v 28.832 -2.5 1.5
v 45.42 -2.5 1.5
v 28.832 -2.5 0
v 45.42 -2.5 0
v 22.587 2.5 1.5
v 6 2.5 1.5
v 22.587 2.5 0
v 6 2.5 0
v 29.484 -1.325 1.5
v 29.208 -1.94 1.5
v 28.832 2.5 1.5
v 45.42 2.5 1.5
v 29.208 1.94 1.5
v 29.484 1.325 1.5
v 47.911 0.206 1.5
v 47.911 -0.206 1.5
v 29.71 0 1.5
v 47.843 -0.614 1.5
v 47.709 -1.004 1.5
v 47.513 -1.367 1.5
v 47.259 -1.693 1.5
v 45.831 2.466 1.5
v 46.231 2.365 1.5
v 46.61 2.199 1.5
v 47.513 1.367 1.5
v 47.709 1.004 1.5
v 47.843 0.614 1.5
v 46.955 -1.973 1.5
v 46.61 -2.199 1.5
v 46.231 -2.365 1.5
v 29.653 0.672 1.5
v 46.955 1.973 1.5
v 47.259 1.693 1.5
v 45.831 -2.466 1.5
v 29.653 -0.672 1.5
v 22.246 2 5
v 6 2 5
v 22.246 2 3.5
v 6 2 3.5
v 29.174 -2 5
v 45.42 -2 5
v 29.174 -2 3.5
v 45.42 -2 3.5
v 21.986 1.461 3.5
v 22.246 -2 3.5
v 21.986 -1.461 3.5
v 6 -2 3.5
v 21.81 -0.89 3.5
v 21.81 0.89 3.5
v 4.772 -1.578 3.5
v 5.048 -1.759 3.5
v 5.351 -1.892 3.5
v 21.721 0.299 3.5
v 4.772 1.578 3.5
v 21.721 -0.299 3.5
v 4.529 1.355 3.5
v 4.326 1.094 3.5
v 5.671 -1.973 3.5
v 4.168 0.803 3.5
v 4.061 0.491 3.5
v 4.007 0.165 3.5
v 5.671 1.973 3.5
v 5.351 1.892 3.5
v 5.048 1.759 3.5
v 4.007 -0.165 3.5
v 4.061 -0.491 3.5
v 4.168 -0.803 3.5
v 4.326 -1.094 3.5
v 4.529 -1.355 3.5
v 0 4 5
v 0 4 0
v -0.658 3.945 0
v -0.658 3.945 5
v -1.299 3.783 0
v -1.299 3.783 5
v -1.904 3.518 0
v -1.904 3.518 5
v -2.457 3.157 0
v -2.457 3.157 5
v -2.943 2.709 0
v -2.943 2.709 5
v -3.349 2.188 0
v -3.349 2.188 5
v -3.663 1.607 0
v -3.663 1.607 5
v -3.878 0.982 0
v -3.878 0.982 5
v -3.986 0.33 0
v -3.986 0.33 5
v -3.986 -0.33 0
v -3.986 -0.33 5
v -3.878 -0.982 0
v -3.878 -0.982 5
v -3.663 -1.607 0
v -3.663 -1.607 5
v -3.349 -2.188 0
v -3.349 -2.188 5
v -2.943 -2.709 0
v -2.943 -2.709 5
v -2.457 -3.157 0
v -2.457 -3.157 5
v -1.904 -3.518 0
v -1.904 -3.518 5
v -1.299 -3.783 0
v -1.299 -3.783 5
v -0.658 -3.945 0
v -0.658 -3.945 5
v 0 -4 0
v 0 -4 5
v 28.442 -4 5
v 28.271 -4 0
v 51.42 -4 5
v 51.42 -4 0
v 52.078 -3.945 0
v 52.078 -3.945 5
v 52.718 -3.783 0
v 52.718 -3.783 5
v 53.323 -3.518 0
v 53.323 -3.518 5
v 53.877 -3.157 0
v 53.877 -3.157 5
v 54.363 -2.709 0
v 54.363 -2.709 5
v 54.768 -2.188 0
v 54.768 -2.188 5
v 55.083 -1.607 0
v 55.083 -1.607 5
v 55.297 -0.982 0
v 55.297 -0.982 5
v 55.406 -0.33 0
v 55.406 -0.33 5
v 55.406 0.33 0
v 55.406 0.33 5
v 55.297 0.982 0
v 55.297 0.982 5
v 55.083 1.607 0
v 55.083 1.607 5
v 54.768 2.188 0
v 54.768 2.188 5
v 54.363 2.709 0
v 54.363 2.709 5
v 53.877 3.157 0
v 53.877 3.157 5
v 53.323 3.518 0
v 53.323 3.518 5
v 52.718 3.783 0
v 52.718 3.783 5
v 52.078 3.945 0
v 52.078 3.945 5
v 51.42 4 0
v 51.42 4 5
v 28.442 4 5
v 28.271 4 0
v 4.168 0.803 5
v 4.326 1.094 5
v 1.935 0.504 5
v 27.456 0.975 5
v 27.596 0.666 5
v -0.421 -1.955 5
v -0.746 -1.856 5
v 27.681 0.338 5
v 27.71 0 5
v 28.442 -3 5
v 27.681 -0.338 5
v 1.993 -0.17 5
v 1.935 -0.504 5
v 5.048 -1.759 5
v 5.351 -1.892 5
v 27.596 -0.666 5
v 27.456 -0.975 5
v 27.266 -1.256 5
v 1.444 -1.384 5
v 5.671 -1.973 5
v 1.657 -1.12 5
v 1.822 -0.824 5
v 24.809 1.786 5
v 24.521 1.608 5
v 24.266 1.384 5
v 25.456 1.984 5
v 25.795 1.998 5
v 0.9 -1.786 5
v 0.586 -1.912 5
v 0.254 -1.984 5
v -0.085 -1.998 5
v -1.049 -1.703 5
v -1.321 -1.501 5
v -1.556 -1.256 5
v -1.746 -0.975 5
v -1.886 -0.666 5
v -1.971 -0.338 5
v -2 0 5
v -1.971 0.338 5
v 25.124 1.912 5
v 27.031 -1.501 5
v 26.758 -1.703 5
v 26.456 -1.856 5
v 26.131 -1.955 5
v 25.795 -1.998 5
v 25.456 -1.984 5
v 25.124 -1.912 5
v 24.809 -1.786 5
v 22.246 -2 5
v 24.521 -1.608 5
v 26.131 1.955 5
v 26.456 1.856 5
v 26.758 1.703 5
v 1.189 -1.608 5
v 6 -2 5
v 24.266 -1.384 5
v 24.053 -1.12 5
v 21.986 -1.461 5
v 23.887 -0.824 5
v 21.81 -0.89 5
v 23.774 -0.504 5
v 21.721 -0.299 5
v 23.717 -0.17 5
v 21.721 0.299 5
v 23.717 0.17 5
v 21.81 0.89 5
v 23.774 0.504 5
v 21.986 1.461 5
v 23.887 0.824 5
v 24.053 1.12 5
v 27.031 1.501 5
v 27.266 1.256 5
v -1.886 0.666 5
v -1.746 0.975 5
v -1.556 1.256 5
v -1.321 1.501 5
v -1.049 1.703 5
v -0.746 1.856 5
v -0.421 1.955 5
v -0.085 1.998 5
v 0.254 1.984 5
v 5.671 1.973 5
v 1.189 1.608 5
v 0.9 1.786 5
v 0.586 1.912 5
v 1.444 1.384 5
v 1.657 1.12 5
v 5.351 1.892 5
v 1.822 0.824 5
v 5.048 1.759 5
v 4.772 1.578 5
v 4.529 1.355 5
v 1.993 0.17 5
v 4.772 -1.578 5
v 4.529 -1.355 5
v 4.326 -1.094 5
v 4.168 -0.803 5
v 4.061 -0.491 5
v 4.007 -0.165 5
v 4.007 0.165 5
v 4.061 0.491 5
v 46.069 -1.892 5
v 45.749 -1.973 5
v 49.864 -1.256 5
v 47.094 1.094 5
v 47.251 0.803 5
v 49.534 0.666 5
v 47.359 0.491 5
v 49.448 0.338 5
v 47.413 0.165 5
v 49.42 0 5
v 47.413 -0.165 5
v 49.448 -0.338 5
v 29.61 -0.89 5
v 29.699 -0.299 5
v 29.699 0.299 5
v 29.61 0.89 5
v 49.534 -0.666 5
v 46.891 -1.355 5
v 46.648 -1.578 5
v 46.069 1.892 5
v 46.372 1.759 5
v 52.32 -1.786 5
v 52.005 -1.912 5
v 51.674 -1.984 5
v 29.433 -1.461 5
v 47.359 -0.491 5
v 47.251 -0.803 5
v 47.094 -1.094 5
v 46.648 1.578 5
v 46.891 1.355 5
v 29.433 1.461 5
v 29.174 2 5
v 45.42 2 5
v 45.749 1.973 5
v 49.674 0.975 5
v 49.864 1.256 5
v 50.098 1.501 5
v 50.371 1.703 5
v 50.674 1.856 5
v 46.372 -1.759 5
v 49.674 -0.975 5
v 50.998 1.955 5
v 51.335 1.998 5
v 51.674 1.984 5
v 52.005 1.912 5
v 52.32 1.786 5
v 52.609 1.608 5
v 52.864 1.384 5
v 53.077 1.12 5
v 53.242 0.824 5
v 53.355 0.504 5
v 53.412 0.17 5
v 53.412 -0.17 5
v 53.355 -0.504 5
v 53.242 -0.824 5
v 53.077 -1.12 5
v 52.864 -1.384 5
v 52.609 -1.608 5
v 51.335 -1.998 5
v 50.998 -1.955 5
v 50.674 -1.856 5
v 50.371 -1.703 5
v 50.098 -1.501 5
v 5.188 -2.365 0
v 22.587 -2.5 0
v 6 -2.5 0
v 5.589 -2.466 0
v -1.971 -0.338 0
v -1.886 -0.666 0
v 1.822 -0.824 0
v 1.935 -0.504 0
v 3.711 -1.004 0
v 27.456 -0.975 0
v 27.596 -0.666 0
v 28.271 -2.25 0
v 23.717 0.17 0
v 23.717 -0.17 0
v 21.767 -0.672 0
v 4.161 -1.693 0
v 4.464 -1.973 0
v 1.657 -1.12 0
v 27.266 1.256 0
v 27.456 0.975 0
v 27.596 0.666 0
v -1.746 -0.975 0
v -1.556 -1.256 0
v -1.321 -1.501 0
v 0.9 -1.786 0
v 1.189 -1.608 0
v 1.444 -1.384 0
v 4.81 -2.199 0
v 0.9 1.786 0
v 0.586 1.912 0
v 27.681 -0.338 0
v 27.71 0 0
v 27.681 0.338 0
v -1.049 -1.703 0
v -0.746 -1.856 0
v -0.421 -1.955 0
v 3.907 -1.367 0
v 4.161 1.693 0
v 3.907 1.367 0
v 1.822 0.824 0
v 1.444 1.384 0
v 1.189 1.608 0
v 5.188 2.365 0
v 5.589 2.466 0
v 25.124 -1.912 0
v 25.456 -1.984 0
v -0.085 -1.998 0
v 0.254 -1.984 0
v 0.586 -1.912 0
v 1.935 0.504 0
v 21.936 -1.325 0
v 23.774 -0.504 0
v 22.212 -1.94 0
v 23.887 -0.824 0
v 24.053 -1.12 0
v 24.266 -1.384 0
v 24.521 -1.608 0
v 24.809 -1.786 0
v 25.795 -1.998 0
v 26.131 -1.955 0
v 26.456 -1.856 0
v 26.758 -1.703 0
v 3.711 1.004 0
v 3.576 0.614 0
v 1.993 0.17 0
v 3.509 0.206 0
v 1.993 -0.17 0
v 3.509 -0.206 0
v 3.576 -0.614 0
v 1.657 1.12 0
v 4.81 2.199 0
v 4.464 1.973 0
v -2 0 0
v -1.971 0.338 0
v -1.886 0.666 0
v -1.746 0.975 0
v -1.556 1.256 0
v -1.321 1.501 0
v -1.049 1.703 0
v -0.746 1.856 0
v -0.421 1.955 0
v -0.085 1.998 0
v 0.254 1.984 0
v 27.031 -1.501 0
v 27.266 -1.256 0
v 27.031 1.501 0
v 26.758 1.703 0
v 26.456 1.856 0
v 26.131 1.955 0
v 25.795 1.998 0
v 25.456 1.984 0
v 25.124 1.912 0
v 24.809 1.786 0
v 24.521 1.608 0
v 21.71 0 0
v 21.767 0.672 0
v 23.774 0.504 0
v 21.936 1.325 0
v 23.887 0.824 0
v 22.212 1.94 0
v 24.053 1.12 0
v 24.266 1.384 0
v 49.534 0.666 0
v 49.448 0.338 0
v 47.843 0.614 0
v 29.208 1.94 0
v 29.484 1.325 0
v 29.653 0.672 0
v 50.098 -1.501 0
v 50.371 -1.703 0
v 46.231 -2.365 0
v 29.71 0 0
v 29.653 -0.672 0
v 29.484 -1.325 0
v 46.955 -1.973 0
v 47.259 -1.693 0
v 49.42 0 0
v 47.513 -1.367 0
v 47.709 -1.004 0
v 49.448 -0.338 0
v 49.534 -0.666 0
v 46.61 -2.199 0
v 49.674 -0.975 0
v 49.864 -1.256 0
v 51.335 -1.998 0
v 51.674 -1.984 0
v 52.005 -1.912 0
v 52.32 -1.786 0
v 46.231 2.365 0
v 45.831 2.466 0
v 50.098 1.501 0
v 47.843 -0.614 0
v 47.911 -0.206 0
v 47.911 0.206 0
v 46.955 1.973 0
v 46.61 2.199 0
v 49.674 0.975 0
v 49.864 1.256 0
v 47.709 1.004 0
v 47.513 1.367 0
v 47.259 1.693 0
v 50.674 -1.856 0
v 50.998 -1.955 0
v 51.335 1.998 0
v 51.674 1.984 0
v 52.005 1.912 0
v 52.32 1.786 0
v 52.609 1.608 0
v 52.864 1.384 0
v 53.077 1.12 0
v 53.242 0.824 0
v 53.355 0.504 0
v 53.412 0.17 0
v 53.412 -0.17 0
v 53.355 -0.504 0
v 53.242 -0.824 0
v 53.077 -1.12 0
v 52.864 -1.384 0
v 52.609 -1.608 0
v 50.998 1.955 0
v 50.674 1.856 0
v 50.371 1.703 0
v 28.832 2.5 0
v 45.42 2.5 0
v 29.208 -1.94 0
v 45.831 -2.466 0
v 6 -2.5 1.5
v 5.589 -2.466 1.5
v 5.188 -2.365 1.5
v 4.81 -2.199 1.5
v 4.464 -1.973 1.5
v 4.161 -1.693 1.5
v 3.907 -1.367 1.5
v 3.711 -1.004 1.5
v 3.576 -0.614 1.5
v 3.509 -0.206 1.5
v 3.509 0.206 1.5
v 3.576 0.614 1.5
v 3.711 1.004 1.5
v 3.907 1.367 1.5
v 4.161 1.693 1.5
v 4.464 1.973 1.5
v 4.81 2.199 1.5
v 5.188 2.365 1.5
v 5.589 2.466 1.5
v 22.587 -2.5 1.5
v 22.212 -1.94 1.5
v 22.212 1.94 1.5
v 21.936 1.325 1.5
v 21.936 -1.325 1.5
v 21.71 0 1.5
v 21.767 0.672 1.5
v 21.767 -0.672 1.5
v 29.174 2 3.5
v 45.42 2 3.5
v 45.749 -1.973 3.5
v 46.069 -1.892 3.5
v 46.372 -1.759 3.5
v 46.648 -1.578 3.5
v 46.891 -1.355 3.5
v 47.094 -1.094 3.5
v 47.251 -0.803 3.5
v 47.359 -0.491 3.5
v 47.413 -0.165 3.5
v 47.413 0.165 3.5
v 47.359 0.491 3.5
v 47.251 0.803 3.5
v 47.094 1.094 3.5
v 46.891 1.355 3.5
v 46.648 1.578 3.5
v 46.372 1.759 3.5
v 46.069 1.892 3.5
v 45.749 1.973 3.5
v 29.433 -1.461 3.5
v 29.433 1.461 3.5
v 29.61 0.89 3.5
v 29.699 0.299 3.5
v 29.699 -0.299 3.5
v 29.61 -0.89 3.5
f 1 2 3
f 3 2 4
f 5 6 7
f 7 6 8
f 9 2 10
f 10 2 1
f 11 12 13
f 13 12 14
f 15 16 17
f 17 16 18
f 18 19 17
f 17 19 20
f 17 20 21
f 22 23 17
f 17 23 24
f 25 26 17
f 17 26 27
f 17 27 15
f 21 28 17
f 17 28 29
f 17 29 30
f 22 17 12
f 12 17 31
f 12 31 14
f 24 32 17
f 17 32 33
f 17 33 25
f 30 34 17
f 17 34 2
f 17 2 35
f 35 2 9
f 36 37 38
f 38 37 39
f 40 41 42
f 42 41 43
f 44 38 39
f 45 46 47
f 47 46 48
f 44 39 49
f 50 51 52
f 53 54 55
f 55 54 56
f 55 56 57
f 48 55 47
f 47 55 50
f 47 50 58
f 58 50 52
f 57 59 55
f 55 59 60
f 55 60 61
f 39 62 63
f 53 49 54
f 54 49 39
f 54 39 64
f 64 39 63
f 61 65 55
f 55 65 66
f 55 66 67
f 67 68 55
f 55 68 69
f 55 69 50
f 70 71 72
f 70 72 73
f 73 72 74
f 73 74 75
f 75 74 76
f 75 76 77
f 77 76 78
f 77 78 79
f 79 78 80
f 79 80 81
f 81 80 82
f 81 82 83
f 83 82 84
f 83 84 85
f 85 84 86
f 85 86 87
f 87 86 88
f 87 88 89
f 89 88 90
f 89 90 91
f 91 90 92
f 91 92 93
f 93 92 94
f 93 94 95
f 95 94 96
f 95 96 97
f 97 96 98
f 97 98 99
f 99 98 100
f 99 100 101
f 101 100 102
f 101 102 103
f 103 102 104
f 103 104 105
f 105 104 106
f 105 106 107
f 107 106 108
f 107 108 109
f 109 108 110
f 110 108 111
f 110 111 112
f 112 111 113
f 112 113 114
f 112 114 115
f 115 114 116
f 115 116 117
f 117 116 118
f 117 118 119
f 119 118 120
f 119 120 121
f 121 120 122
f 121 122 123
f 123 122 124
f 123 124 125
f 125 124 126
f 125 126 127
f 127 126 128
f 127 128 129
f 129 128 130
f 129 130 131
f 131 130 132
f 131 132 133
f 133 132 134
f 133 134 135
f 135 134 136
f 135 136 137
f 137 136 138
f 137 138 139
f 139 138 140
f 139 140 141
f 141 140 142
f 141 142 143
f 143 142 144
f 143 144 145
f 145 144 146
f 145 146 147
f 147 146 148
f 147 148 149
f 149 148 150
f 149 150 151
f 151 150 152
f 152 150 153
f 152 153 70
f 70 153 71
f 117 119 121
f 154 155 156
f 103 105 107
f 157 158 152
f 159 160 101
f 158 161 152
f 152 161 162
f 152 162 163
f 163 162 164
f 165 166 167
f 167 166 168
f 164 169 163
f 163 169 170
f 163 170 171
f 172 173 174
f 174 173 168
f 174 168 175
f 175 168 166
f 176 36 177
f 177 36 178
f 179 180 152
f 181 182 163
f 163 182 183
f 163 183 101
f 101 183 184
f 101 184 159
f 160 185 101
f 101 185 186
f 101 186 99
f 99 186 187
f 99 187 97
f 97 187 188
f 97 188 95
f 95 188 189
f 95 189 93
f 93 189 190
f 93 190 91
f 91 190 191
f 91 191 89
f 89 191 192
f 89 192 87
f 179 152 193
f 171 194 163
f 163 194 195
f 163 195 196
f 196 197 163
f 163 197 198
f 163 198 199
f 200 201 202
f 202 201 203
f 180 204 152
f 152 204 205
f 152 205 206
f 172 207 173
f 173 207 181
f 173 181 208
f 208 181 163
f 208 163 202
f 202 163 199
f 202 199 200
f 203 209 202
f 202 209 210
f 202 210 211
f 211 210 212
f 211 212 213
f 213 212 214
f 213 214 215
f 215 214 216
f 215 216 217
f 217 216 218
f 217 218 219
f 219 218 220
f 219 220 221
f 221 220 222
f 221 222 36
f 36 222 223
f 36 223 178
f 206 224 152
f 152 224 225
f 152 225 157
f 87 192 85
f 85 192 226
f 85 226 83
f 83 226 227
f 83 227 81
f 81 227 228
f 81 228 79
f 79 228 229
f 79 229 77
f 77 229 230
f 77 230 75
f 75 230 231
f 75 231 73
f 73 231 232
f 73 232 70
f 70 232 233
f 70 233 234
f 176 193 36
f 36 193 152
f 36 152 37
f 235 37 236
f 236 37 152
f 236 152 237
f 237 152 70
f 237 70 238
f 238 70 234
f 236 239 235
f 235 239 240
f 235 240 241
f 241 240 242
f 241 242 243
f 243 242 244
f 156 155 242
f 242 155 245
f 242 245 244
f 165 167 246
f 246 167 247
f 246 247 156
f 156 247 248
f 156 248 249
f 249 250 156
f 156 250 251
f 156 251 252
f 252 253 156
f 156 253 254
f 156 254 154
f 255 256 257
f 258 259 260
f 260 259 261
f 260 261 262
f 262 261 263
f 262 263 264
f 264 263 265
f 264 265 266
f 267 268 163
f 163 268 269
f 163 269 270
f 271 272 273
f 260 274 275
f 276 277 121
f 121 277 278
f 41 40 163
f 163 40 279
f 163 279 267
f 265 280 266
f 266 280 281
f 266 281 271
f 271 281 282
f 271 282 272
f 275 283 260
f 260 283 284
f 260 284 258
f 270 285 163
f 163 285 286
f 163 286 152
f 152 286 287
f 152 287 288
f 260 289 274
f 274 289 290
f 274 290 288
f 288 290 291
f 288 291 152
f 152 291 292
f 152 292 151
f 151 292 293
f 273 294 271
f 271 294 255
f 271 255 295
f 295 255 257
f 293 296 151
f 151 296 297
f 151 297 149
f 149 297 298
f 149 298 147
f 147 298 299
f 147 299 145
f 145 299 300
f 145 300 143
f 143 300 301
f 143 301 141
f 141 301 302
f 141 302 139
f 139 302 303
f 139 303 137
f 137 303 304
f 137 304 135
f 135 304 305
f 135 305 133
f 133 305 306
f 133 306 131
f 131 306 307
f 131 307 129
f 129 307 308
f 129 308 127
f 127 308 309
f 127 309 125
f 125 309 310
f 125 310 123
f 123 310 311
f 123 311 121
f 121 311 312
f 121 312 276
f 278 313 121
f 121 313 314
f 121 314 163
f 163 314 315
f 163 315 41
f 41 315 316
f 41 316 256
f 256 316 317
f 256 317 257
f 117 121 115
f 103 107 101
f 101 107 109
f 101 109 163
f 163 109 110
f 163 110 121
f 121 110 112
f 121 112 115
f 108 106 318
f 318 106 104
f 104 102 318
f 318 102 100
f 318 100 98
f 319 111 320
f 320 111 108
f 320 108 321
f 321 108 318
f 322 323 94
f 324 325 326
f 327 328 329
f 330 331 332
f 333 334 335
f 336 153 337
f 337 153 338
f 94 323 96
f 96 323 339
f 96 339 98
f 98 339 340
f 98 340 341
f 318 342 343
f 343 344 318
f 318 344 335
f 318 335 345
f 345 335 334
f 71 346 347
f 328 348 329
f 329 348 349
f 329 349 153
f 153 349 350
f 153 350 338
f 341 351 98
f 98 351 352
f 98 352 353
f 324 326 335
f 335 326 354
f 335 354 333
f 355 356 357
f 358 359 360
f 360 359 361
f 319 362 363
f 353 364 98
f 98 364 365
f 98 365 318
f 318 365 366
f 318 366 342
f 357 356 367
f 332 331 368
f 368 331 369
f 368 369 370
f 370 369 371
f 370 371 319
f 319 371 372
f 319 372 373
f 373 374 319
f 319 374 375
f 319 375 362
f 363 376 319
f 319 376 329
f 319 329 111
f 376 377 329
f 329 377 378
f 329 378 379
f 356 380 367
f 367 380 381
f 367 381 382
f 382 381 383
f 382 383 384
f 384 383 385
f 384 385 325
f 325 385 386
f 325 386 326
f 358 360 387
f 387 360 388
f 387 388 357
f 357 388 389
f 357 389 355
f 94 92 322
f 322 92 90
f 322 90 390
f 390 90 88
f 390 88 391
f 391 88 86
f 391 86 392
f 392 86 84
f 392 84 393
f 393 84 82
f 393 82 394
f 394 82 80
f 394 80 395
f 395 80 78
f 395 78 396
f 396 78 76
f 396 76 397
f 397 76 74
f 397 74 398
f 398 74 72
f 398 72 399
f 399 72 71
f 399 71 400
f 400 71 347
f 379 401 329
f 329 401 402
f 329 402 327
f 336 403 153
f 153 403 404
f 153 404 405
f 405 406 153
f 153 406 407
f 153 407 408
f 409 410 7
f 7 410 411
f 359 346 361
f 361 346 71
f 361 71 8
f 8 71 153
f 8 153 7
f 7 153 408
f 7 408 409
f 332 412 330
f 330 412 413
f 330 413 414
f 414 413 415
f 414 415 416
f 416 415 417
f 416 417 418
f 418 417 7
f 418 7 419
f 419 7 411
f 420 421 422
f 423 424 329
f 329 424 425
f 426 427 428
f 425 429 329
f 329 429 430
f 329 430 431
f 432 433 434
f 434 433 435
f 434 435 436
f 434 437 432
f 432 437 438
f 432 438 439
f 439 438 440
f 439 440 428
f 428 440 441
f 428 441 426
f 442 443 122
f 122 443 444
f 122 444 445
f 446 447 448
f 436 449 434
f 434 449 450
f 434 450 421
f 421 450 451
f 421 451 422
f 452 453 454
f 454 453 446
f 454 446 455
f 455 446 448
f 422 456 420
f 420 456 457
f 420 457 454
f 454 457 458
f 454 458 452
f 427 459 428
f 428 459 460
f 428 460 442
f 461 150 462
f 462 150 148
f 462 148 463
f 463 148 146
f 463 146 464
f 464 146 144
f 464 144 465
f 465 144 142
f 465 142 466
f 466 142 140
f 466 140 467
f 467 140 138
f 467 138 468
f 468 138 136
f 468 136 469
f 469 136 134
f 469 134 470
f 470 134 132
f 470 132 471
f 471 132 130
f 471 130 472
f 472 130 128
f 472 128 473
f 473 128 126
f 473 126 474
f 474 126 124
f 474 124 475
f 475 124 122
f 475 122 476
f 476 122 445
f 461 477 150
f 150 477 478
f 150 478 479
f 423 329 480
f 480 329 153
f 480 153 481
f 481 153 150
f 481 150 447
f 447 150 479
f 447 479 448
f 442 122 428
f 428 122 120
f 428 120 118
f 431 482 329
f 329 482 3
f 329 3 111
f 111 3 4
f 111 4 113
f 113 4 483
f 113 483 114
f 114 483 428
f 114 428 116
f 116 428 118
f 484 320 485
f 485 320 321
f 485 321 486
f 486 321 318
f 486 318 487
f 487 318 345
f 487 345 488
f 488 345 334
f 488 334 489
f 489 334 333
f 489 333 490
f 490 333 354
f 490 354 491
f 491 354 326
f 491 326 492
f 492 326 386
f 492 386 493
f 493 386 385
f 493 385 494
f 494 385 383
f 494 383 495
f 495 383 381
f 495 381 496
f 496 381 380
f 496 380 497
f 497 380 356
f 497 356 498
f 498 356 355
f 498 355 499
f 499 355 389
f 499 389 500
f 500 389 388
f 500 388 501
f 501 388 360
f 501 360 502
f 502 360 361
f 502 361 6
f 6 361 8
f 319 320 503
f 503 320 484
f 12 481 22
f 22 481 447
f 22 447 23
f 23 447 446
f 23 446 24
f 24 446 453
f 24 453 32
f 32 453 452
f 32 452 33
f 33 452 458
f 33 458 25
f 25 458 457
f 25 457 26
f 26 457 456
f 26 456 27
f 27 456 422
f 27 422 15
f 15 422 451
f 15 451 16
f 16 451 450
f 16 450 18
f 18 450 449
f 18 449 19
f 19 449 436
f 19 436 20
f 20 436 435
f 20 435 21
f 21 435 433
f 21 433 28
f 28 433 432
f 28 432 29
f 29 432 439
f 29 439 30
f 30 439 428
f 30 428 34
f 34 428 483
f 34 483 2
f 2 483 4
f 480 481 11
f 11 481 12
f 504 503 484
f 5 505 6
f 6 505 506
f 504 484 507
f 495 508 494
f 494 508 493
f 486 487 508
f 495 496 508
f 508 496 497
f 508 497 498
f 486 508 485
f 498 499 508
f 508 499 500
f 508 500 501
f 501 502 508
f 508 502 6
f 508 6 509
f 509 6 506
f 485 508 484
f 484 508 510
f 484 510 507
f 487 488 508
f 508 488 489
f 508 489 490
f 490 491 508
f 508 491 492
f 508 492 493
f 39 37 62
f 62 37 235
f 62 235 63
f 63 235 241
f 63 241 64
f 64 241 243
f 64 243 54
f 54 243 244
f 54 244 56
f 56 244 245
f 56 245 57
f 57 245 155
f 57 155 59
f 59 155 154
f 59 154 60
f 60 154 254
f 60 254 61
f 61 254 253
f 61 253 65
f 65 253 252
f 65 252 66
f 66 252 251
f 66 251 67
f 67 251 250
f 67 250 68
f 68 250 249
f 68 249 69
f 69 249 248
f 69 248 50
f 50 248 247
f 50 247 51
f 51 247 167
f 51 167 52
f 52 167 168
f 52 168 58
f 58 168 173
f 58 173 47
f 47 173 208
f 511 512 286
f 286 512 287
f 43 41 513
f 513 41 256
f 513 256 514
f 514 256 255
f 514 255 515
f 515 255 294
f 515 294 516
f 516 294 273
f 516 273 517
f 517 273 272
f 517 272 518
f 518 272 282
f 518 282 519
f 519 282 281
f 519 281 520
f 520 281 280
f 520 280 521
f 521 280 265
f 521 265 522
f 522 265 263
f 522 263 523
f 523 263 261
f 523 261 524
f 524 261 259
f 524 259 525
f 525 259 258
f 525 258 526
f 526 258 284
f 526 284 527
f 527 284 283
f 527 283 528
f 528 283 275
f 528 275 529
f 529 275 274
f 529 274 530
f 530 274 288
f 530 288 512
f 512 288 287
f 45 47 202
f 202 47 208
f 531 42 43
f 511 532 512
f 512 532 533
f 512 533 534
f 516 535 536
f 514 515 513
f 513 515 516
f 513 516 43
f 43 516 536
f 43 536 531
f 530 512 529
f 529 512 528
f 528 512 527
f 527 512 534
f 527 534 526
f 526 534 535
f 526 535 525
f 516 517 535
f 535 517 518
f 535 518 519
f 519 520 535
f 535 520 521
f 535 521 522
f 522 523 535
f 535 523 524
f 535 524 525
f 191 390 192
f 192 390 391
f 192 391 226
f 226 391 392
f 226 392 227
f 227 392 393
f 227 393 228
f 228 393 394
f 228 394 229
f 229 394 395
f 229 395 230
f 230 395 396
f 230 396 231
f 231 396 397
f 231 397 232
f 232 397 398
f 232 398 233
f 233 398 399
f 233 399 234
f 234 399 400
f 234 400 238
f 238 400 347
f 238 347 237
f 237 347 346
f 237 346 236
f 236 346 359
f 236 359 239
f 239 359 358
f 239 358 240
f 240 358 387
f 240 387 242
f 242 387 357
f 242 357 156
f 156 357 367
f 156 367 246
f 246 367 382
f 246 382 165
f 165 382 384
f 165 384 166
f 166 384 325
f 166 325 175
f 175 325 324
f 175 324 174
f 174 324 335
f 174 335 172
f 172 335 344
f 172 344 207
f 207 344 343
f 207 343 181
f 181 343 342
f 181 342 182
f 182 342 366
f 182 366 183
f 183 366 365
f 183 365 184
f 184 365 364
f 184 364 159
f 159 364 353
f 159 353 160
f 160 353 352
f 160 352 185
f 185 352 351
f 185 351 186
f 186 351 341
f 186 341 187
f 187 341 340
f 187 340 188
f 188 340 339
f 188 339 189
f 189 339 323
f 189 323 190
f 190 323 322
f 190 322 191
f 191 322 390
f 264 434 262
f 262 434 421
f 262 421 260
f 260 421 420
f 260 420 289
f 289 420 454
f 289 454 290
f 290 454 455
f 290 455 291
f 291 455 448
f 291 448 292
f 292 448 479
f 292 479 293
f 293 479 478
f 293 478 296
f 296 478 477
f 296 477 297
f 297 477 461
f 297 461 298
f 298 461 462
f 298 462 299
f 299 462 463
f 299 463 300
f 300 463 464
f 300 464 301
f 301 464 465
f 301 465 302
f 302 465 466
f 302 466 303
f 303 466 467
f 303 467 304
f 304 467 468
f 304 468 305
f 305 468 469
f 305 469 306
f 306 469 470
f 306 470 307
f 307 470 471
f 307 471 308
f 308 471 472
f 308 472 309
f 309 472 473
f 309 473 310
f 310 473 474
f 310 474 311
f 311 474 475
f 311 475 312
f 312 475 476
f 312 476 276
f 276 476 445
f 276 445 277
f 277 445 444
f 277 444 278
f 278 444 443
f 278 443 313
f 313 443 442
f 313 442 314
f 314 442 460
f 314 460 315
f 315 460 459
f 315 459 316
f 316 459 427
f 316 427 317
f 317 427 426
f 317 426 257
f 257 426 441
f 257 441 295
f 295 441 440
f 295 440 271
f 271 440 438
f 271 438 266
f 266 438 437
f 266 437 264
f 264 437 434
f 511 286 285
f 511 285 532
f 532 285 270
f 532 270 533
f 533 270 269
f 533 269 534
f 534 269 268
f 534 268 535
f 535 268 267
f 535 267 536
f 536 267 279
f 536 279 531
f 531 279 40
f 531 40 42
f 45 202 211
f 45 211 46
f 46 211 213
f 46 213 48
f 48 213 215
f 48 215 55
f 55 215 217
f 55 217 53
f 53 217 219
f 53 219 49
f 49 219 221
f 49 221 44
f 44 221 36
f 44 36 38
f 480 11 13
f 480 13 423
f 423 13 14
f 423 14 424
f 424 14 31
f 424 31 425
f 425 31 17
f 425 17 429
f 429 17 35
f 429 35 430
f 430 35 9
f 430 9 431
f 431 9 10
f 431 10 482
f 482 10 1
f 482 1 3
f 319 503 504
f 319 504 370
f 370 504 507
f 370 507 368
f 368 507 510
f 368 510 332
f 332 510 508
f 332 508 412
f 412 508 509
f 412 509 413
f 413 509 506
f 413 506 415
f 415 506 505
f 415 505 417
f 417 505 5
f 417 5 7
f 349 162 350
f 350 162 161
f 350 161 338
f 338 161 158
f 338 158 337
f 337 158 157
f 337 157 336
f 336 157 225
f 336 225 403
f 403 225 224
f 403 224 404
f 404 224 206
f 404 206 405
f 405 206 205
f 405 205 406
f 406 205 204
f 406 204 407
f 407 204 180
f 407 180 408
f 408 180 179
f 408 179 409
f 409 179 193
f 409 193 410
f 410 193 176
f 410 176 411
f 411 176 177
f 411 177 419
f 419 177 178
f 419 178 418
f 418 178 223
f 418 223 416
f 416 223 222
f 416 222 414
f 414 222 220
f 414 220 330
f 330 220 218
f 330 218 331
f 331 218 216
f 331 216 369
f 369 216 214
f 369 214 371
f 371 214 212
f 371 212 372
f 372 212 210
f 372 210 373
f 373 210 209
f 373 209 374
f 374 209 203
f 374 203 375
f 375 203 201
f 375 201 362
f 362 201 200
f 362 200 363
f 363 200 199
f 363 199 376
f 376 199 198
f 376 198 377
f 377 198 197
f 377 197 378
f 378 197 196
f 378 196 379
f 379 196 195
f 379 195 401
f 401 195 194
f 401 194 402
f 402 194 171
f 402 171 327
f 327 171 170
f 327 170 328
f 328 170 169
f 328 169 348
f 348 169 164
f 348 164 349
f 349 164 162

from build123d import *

# Parameters (mm, degrees)
BOSS_EXTRUDE1_DEPTH      = 5
CUT_EXTRUDE1_DEPTH       = 1.5
CUT_EXTRUDE2_DEPTH       = 1.5
F_4_0_4_DIAMETER_HOLE1_D = 4
BOSS_EXTRUDE2_START      = -5
SKETCH6_R                = 4
BOSS_EXTRUDE2_DEPTH      = 5
SKETCH7_R                = 2
CUT_EXTRUDE3_DEPTH       = 56.788378253


with BuildPart() as part:
    # Sketch1 → Boss-Extrude1 (new body)
    with BuildSketch(Plane(origin=(0, 0, 0), x_dir=(-1, 0, 0), z_dir=(0, 0, -1))):
        with BuildLine():
            Line((0, 4), (-51.4197, 4))
            ThreePointArc((-51.4197, 4), (-55.4197, 0), (-51.4197, -4))
            Line((-51.4197, -4), (0, -4))
            ThreePointArc((0, -4), (4, 0), (0, 4))
        make_face()
    extrude(amount=-BOSS_EXTRUDE1_DEPTH)

    # Sketch2 → Cut-Extrude1 (cut)
    with BuildSketch(Plane(origin=(0, 0, 0), x_dir=(-1, 0, 0), z_dir=(0, 0, -1))):
        with BuildLine():
            Line((-6, 2.5), (-45.4197, 2.5))
            ThreePointArc((-45.4197, 2.5), (-47.9197, 0), (-45.4197, -2.5))
            Line((-45.4197, -2.5), (-6, -2.5))
            ThreePointArc((-6, -2.5), (-3.5, 0), (-6, 2.5))
        make_face()
    extrude(amount=-CUT_EXTRUDE1_DEPTH, mode=Mode.SUBTRACT)

    # Sketch3 → Cut-Extrude2 (cut)
    with BuildSketch(Plane.XY.offset(5)):
        with BuildLine():
            Line((6, -2), (45.4197, -2))
            ThreePointArc((45.4197, -2), (47.4197, 0), (45.4197, 2))
            Line((45.4197, 2), (6, 2))
            ThreePointArc((6, 2), (4, 0), (6, -2))
        make_face()
    extrude(amount=-CUT_EXTRUDE2_DEPTH, mode=Mode.SUBTRACT)

    # Ø4.0 (4) Diameter Hole1 (through all)
    with Locations(Plane(origin=(0, 0, 0), x_dir=(-1, 0, 0), z_dir=(0, 0, -1))):
        with Locations((-51.4197, 0), (0, 0)):
            Hole(F_4_0_4_DIAMETER_HOLE1_D / 2)

    # Sketch6 → Boss-Extrude2 (add)
    with BuildSketch(Plane.XY.offset(5).offset(BOSS_EXTRUDE2_START)):
        with Locations((25.70985, 0)):
            Circle(SKETCH6_R)
    extrude(amount=BOSS_EXTRUDE2_DEPTH)

    # Sketch7 → Cut-Extrude3 (cut, through all)
    with BuildSketch(Plane.XY.offset(5)):
        with Locations((25.70985, 0)):
            Circle(SKETCH7_R)
    extrude(amount=-CUT_EXTRUDE3_DEPTH, mode=Mode.SUBTRACT)


solid = part.part
